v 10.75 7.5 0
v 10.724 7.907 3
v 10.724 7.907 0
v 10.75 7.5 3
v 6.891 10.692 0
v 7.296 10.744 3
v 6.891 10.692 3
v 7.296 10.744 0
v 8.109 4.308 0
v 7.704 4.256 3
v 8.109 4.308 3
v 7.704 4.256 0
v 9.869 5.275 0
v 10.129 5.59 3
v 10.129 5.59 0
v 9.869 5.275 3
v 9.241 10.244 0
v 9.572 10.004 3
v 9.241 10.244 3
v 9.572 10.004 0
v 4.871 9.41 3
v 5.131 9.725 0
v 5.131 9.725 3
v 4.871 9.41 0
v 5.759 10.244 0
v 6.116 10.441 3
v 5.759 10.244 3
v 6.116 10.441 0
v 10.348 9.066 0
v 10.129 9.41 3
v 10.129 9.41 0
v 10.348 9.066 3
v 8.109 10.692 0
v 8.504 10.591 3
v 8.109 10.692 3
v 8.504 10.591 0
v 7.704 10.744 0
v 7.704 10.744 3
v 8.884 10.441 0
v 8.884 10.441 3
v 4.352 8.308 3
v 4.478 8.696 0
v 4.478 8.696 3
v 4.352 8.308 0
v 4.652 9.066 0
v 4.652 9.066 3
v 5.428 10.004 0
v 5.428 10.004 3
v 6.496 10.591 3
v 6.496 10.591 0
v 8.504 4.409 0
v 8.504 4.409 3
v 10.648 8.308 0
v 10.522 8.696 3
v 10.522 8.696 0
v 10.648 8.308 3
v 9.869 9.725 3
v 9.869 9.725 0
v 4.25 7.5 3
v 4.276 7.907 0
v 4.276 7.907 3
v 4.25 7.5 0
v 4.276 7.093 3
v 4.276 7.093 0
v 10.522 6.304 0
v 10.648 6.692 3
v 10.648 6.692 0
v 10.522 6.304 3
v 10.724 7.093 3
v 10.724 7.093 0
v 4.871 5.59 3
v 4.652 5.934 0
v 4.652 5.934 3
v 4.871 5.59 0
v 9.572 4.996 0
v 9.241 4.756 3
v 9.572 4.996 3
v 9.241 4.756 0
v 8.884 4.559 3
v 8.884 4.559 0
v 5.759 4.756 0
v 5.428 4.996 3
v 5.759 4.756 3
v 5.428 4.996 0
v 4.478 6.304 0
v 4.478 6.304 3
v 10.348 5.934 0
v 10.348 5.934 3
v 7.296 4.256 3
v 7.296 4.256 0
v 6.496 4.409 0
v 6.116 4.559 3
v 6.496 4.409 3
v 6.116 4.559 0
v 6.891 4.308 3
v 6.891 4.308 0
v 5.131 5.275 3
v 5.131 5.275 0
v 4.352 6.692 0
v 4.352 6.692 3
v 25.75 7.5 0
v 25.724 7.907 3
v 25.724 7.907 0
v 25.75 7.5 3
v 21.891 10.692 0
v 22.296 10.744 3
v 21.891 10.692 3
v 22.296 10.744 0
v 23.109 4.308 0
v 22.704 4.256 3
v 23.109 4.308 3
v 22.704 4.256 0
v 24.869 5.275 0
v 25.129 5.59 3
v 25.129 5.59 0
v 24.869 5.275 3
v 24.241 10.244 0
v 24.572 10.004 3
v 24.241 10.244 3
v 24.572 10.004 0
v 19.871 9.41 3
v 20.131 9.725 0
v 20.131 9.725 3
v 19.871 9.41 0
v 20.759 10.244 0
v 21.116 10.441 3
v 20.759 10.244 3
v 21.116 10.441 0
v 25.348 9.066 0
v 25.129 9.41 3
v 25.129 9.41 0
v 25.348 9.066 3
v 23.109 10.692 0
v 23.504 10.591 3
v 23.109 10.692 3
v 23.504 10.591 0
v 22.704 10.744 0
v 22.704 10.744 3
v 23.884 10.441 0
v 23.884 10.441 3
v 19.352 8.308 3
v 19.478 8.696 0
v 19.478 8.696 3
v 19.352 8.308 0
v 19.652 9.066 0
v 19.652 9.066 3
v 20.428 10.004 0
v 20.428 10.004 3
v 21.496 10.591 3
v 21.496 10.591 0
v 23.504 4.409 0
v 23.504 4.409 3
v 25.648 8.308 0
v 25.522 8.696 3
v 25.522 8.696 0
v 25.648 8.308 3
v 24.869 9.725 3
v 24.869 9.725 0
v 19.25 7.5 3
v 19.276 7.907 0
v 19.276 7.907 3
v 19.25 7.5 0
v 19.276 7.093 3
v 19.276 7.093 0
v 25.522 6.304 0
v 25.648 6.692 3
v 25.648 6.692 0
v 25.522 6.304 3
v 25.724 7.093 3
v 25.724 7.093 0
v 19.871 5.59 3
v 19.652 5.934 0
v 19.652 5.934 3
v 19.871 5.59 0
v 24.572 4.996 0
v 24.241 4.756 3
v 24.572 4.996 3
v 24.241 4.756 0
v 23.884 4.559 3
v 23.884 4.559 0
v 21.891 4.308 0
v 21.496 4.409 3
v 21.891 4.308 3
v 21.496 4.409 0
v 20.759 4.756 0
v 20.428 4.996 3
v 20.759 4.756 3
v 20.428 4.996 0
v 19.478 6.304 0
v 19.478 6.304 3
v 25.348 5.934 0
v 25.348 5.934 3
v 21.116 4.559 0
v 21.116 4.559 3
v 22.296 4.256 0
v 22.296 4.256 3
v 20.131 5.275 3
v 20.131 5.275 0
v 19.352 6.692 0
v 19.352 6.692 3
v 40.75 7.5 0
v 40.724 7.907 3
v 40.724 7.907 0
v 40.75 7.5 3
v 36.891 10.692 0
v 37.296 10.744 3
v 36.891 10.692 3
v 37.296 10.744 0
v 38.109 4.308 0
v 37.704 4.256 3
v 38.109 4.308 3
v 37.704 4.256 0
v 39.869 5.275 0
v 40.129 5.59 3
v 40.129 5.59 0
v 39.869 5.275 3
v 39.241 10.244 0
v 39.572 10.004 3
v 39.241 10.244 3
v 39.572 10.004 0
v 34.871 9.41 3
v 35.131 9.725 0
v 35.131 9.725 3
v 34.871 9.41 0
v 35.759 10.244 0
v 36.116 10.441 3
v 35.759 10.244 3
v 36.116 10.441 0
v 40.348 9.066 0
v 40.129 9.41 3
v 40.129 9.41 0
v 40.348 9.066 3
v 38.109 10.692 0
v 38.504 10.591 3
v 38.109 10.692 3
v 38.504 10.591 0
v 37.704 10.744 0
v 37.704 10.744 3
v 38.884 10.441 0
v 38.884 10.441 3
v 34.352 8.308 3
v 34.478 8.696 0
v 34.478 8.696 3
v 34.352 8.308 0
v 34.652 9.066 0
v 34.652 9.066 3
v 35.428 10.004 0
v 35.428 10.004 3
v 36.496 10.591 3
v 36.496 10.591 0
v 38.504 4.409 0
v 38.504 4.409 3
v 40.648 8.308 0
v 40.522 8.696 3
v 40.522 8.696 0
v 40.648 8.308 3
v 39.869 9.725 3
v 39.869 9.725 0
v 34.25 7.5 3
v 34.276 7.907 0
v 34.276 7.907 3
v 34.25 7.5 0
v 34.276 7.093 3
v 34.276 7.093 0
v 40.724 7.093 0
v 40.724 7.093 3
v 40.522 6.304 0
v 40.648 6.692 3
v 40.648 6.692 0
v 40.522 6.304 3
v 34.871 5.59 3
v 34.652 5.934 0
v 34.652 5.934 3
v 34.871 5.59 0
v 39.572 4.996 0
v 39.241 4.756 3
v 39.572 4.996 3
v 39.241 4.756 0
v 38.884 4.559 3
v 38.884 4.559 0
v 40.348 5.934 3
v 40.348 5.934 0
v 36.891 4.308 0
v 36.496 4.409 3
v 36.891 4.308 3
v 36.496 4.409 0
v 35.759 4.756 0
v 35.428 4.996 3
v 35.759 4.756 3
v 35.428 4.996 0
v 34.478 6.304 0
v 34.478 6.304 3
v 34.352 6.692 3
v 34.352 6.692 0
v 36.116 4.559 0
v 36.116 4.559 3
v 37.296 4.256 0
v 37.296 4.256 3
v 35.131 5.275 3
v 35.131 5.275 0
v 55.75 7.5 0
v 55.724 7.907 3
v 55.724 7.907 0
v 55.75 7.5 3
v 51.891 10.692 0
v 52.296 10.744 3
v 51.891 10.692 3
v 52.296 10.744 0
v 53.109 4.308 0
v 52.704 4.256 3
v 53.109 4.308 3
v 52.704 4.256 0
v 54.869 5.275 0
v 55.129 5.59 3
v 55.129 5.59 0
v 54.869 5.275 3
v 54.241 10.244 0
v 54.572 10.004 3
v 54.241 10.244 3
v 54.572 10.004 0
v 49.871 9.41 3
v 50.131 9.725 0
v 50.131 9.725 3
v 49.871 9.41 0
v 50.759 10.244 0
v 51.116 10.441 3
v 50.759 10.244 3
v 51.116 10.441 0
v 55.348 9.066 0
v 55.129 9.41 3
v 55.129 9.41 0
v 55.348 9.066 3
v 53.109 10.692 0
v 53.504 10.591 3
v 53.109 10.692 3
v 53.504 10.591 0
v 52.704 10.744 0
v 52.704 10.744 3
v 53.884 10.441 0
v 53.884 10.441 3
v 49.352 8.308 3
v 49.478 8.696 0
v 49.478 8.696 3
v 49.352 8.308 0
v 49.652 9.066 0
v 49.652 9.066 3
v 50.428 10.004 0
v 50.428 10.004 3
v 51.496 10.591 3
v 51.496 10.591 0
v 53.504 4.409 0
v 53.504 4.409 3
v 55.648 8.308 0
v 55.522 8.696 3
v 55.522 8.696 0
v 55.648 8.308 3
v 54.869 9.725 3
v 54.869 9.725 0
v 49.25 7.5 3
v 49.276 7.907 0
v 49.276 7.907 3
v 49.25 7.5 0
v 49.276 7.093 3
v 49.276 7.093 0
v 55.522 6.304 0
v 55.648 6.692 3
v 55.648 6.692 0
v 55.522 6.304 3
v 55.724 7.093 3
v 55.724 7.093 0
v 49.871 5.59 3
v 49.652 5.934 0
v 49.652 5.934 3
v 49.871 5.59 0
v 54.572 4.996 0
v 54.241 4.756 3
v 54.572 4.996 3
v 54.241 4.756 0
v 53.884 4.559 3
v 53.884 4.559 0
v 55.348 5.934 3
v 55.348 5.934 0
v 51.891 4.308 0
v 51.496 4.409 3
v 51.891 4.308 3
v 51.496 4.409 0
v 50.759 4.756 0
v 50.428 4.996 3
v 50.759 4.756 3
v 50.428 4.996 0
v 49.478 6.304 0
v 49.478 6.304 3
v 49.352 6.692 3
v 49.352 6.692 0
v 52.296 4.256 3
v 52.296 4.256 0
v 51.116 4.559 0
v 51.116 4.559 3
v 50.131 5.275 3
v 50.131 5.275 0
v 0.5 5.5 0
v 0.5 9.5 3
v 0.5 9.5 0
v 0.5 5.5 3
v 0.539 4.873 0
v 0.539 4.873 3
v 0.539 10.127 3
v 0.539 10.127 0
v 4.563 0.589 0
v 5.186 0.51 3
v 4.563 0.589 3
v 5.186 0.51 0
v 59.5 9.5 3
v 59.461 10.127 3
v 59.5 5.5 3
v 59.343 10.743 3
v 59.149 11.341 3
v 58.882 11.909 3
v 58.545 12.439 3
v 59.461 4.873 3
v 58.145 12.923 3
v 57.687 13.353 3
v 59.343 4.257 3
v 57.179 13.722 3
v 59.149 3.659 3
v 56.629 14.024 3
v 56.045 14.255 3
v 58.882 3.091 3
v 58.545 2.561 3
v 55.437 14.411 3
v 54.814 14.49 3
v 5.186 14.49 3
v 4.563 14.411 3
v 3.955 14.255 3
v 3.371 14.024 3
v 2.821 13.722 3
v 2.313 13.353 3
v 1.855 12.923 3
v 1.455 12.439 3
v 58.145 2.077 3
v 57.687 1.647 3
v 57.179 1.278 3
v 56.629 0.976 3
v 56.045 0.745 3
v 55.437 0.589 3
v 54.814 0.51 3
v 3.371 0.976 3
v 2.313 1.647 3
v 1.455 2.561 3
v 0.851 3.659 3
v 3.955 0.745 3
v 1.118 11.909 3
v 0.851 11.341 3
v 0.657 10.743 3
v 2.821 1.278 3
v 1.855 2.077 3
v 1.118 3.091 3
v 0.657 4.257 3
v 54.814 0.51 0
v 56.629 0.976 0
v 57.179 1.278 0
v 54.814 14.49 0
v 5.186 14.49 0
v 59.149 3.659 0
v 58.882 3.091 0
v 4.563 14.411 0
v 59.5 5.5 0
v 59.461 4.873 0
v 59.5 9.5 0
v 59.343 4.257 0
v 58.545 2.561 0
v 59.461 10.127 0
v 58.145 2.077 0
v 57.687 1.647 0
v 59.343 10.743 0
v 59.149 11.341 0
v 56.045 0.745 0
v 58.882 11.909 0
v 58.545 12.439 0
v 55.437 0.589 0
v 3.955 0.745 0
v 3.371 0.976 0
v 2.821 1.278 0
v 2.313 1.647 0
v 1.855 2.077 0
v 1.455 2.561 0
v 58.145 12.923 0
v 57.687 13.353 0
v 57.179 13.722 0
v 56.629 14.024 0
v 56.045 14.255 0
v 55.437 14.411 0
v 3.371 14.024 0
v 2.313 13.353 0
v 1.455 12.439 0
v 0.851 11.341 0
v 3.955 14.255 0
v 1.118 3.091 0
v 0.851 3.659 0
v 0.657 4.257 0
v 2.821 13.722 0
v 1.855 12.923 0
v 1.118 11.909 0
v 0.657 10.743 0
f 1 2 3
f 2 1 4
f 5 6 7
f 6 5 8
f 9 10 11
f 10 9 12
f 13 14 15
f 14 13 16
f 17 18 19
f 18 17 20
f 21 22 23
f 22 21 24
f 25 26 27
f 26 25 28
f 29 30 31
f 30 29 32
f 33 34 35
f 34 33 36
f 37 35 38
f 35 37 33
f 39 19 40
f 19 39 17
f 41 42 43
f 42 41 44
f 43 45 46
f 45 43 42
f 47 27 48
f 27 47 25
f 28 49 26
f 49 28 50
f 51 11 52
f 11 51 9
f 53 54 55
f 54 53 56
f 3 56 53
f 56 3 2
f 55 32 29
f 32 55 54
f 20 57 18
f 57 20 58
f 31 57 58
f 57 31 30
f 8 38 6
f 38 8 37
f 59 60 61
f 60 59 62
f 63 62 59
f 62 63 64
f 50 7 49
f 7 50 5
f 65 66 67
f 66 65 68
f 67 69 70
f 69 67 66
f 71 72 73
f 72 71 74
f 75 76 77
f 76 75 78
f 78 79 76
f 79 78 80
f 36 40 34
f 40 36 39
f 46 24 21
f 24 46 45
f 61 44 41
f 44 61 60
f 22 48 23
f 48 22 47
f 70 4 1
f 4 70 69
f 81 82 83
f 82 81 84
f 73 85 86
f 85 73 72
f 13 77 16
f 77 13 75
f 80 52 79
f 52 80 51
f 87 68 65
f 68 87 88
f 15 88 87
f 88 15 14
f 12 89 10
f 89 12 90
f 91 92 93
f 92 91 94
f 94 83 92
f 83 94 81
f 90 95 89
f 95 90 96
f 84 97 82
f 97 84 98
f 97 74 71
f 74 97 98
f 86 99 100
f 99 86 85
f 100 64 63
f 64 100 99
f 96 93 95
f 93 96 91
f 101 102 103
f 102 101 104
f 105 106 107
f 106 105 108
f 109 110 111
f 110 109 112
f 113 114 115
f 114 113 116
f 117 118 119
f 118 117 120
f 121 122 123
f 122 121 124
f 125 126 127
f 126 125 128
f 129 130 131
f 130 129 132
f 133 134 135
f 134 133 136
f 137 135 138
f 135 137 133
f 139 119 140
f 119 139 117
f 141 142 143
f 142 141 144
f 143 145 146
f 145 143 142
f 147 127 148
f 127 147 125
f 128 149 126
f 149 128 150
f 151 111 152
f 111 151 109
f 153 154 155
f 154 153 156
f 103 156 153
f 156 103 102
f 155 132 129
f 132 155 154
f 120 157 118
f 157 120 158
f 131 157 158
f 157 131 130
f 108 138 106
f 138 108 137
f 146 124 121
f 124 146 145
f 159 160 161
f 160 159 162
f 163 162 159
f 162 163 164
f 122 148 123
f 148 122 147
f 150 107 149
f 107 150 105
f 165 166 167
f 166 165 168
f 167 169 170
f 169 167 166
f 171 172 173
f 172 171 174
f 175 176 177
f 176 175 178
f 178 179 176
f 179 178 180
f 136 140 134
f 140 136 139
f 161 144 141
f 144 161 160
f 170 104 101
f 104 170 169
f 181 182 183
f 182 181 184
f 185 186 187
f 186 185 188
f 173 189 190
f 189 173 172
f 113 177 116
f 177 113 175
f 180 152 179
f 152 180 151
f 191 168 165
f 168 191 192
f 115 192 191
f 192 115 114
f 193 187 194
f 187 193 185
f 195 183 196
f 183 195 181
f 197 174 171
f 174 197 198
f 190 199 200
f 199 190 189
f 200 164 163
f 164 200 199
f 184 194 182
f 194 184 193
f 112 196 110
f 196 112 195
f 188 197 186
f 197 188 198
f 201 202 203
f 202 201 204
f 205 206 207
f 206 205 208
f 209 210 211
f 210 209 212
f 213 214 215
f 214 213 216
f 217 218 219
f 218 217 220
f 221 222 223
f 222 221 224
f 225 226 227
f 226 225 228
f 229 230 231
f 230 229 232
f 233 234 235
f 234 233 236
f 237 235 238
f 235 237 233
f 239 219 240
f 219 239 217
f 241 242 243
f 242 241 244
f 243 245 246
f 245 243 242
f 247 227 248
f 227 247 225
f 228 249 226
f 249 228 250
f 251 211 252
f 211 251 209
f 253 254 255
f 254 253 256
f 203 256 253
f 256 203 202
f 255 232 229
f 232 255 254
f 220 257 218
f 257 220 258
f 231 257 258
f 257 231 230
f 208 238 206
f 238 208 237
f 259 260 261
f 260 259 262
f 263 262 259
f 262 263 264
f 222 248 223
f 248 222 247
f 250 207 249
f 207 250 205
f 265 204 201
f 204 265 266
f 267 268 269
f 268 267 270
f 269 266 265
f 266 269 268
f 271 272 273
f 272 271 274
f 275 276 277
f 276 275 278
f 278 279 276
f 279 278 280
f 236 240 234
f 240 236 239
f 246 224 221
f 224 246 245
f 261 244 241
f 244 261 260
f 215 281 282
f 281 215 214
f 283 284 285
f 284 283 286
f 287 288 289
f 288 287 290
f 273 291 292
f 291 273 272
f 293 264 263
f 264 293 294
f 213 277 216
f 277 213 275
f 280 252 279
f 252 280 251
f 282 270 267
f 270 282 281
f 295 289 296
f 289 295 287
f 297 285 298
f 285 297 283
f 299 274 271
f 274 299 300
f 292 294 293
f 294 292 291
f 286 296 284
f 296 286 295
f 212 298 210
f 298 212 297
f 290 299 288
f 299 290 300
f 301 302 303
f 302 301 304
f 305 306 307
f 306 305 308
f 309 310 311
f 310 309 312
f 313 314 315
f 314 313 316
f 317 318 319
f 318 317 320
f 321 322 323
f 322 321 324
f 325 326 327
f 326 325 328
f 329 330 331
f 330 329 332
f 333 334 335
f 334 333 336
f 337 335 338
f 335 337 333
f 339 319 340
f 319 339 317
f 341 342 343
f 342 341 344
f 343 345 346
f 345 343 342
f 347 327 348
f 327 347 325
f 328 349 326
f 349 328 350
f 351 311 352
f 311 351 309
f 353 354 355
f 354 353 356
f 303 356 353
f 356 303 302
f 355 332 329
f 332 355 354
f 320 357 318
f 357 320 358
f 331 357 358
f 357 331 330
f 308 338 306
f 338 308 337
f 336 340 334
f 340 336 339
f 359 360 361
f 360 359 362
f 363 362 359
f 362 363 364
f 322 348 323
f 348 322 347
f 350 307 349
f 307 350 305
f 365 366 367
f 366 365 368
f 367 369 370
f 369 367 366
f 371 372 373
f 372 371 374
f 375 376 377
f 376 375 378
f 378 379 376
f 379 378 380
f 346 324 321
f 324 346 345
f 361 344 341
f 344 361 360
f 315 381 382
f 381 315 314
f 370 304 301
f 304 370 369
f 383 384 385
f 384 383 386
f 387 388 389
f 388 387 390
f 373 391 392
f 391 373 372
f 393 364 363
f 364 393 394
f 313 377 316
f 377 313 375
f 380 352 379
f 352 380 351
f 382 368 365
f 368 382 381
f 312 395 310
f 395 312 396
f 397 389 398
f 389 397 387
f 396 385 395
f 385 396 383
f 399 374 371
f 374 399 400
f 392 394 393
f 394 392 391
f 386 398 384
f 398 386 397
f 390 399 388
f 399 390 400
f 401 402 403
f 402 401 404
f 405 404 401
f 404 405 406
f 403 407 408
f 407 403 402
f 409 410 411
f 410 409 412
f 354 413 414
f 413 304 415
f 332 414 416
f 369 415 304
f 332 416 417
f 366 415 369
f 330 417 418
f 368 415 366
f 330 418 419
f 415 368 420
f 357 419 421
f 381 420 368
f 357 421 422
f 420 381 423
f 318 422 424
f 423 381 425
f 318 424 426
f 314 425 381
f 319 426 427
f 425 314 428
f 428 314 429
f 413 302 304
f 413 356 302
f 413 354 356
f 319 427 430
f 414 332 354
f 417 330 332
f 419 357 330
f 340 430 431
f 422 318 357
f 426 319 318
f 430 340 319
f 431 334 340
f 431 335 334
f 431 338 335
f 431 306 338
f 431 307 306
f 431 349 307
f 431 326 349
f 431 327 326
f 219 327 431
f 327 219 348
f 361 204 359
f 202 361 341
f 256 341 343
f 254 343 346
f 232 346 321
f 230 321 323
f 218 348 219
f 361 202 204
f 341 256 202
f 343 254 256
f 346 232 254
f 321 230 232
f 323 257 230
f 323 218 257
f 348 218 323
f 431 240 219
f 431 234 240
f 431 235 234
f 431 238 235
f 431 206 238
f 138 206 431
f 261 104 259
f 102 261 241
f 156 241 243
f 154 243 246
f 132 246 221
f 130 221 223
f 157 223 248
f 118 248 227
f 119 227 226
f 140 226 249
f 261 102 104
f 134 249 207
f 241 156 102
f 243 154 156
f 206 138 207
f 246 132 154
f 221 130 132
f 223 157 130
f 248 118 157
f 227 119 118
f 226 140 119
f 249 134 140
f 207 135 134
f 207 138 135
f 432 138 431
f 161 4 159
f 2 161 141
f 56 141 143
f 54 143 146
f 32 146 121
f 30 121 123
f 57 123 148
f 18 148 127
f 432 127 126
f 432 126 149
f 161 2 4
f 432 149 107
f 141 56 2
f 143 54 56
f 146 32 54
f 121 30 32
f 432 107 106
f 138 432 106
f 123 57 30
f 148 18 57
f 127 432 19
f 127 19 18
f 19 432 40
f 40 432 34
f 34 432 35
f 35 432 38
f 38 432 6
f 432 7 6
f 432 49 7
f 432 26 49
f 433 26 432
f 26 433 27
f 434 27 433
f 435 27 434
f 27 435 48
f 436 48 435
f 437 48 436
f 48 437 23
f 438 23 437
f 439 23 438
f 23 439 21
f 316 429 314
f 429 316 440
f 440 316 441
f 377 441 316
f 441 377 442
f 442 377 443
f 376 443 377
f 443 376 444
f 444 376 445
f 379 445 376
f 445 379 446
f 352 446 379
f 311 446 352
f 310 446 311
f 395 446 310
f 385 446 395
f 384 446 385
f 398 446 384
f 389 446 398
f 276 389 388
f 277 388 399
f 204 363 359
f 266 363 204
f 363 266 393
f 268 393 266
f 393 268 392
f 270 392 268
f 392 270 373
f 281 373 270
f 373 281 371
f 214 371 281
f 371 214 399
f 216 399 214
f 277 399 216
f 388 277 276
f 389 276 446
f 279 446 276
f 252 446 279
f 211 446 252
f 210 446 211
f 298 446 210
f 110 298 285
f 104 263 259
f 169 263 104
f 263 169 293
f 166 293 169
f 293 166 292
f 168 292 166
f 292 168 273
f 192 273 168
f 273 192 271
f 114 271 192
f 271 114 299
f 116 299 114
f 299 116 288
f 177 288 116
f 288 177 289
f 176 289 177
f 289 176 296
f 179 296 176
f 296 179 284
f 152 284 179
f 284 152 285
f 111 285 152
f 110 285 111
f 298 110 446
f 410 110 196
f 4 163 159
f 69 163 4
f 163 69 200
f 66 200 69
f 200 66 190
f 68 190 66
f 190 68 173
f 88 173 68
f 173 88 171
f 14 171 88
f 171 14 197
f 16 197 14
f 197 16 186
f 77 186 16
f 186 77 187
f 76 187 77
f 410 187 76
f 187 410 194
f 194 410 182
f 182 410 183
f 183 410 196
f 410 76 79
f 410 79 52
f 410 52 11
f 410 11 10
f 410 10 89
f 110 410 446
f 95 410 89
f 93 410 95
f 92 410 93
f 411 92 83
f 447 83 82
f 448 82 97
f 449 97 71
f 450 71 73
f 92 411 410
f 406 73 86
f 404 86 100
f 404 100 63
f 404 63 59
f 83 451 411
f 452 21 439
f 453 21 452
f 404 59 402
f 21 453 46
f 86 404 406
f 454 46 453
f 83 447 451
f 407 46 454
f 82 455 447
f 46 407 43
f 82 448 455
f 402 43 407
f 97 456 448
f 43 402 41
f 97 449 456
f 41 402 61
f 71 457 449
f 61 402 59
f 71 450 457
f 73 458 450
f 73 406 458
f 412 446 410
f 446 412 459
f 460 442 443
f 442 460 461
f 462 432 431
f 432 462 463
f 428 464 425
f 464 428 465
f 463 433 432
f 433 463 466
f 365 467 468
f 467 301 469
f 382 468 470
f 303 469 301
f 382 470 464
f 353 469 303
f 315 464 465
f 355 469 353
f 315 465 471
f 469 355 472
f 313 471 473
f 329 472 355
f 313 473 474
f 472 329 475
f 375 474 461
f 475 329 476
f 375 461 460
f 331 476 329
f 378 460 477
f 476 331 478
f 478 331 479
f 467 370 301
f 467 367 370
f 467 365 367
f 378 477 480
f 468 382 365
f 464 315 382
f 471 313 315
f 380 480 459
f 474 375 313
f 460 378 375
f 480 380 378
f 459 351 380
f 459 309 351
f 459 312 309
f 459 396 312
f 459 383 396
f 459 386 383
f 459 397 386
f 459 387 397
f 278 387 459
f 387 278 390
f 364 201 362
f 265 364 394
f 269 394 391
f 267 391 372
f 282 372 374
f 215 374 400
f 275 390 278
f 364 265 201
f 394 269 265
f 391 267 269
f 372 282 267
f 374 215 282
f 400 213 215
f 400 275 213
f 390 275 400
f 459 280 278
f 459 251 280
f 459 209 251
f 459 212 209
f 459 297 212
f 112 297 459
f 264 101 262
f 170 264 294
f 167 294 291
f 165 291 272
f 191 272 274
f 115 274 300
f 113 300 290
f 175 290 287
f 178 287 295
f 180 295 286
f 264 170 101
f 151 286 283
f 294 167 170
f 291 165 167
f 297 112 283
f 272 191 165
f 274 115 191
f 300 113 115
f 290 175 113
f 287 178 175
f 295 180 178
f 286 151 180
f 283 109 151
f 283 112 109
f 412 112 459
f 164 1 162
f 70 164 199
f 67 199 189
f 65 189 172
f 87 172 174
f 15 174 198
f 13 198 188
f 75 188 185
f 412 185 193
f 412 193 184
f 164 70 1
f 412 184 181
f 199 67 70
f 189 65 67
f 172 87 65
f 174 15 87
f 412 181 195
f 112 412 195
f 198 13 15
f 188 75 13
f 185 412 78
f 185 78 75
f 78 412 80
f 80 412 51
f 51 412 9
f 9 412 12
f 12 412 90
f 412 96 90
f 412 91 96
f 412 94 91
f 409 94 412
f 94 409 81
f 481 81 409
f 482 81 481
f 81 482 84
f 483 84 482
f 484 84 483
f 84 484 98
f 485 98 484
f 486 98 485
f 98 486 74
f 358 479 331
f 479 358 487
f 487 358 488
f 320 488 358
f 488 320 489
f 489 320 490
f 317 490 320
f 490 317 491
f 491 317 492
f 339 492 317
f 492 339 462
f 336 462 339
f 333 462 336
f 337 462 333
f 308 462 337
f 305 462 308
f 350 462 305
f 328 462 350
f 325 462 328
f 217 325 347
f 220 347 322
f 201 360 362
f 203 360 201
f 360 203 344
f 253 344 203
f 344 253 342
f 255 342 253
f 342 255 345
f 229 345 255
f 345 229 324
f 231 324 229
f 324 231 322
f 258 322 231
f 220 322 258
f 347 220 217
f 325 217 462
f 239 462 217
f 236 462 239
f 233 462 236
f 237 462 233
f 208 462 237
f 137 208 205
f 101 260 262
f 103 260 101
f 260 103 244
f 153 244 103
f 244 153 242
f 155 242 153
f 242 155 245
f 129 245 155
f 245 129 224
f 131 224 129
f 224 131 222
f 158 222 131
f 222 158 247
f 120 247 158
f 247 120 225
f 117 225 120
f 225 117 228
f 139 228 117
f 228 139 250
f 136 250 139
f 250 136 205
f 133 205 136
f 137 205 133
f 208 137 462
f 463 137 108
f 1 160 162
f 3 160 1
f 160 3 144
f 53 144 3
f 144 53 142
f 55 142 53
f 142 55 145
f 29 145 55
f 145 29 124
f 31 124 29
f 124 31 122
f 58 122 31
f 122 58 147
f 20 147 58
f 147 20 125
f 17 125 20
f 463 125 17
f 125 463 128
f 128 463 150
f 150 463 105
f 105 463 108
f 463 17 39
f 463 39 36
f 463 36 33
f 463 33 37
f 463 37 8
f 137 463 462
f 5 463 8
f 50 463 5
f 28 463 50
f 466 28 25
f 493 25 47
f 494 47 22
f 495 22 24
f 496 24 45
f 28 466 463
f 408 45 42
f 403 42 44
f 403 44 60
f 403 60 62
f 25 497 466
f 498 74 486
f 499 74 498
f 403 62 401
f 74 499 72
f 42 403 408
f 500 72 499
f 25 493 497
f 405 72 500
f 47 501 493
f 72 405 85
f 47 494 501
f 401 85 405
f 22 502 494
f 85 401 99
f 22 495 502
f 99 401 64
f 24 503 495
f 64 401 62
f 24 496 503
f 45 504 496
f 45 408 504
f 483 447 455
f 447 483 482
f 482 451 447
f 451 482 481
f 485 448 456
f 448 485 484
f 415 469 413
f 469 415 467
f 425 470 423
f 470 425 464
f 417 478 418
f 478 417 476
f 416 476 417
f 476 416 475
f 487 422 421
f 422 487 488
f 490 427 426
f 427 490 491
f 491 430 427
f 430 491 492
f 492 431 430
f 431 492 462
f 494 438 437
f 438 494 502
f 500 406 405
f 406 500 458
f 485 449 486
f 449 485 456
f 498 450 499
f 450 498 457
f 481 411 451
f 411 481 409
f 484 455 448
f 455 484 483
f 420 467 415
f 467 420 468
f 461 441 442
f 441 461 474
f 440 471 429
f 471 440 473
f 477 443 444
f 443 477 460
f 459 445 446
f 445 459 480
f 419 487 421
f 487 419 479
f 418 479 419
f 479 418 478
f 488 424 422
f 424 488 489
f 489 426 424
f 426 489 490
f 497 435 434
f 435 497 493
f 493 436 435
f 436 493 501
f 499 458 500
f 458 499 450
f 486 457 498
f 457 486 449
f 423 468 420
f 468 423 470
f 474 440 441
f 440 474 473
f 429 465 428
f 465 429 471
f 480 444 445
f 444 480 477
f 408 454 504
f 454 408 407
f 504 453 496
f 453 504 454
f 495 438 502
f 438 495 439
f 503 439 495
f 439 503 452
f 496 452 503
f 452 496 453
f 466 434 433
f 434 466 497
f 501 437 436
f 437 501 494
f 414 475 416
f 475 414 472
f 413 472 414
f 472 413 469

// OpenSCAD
// Generated by SolidPython 1.1.3 on 2023-01-30 13:27:37
$fn = 50;


difference() {
	union() {
		translate(v = [30.0000000000, 7.5000000000, 0]) {
			rotate(a = [0, 0, 0]) {
				hull() {
					translate(v = [-24.5000000000, 2.0000000000, 0]) {
						rotate(a = [0, 0, 0]) {
							translate(v = [0, 0, 0]) {
								rotate(a = [0, 0, 0]) {
									cylinder(h = 3, r = 5);
								}
							}
						}
					}
					translate(v = [24.5000000000, 2.0000000000, 0]) {
						rotate(a = [0, 0, 0]) {
							translate(v = [0, 0, 0]) {
								rotate(a = [0, 0, 0]) {
									cylinder(h = 3, r = 5);
								}
							}
						}
					}
					translate(v = [-24.5000000000, -2.0000000000, 0]) {
						rotate(a = [0, 0, 0]) {
							translate(v = [0, 0, 0]) {
								rotate(a = [0, 0, 0]) {
									cylinder(h = 3, r = 5);
								}
							}
						}
					}
					translate(v = [24.5000000000, -2.0000000000, 0]) {
						rotate(a = [0, 0, 0]) {
							translate(v = [0, 0, 0]) {
								rotate(a = [0, 0, 0]) {
									cylinder(h = 3, r = 5);
								}
							}
						}
					}
				}
			}
		}
	}
	union() {
		translate(v = [7.5000000000, 7.5000000000, 0]) {
			rotate(a = [0, 0, 0]) {
				translate(v = [0, 0, -50]) {
					rotate(a = [0, 0, 0]) {
						cylinder(h = 100, r = 3.2500000000);
					}
				}
			}
		}
		translate(v = [22.5000000000, 7.5000000000, 0]) {
			rotate(a = [0, 0, 0]) {
				translate(v = [0, 0, -50]) {
					rotate(a = [0, 0, 0]) {
						cylinder(h = 100, r = 3.2500000000);
					}
				}
			}
		}
		translate(v = [37.5000000000, 7.5000000000, 0]) {
			rotate(a = [0, 0, 0]) {
				translate(v = [0, 0, -50]) {
					rotate(a = [0, 0, 0]) {
						cylinder(h = 100, r = 3.2500000000);
					}
				}
			}
		}
		translate(v = [52.5000000000, 7.5000000000, 0]) {
			rotate(a = [0, 0, 0]) {
				translate(v = [0, 0, -50]) {
					rotate(a = [0, 0, 0]) {
						cylinder(h = 100, r = 3.2500000000);
					}
				}
			}
		}
	}
}
/***********************************************
*********      SolidPython code:      **********
************************************************
 
from solid import *
import os
import subprocess

import oomB

import opsc_library_gen

mode = "laser"
#mode = "3d_print"

defined_objects = {}

radius_dict = {}
countersunk_dict = {}


def set_mode(m):
    global mode
    mode = m
    radius_dict['M6'] = 6.5/2
    radius_dict['M3'] = 3.3/2
    if mode == "laser":
        radius_dict['M6'] = 6/2
        radius_dict['M3'] = 3/2

    countersunk_dict['M3'] = {}
    countersunk_dict['M3']['little_rad'] = radius_dict['M3']
    countersunk_dict['M3']['big_rad'] = (5.5+0.6)/2
    if mode == "laser":
        countersunk_dict['M3']['big_rad'] = (4.75+0.6)/2
        countersunk_dict['M3']['little_rad'] = (4.75+0.6)/2

    countersunk_dict['M3']['height'] = 1.7


def opsc_make_object(filename, objects, save_type="none",resolution=50, layers = 1, tilediff = 200, mode="laser"):
    set_mode(mode)
    save_type = save_type.lower()
    os.makedirs(os.path.dirname(filename), exist_ok=True)
    final_object = opsc_get_object(objects)
    # Save the final object to the specified filename    
    scad_render_to_file(final_object, filename, file_header='$fn = %s;' % resolution, include_orig_code=True)
    if mode == "laser":
        filename_laser = filename.replace(".scad","-flat.scad")
        scad_render_to_file(getLaser(final_object, layers=layers, tilediff=tilediff), filename_laser, file_header='$fn = %s;' % resolution, include_orig_code=True)
        if save_type == "all":
            saveToAll(filename_laser)
        elif save_type == "dxf":
            saveToDxf(filename_laser)
    if save_type == "all":
        saveToAll(filename)
    elif save_type == "dxf":
        saveToDxf(filename)


def opsc_get_object(objects):
    # Create the solidpython objects
    positive_objects = [get_opsc_item(obj) for obj in objects if obj['type'] == 'positive']
    negative_objects = [get_opsc_item(obj) for obj in objects if obj['type'] == 'negative']
    # Union the positive objects
    positive_object = union()(*positive_objects)
    # Union the negative objects
    negative_object = union()(*negative_objects)
    # Create the final object by subtracting the negative objects from the positive objects
    return difference()(positive_object, negative_object)

def get_opsc_item(params):
    # A dictionary to map radius string values to numerical values
    #radius_dict = {'small': 5, 'medium': 10, 'large': 15}
    # An array of function names for basic shapes
    basic_shapes = ['cube', 'sphere', 'cylinder']
    
    # An array of function names for other shapes
    other_shapes = ['hole', 'slot', 'rounded_rectangle', 'countersunk']
    


    # Convert radius to r if present, and remove radius from the params dictionary
    if 'radius' in params:
        if isinstance(params['radius'], str):
            # Use the radius_dict to map the radius string value to a numerical value
            params['r'] = radius_dict[params['radius']]
        else:
            params['r'] = params['radius']
        del params['radius']
    

    # Check if the object type is a basic shape
    if params['shape'] in basic_shapes:
        # Remove shape and unexpected dictionary values
        allowed_keys = {'size', 'r', 'r1', 'r2', 'd', 'h', 'rw', 'rh', 'dw', 'dh'}
        shape_params = {k: v for k, v in params.items() if k in allowed_keys}

        # Call the corresponding function for the shape parameter, using ** notation to pass the shape_params dictionary as keyword arguments
        return get_opsc_transform(params,globals()[params['shape']](**shape_params))
    
    # If the object type is not a basic shape, check if it's a defined object or one of the other shapes
    elif params['shape'] in other_shapes:
        # Call the corresponding function for the shape parameter, passing the params dictionary as an argument
        p2 = copy.deepcopy(params)
        p2["pos"] = [0,0,0]
        return get_opsc_transform(params,globals()[params['shape']](p2))
    
    # If the object is not a basic shape or a defined object, try to import it from a .scad file
    else:
        obj = defined_objects[params['shape']]
        return get_opsc_transform(params,obj)

def get_opsc_transform(params, solid_obj):
    # Rotate the object based on the 'rot' field in the params dictionary, or the 'rotX', 'rotY', and 'rotZ' fields if 'rot' is not present
    rot = params.get('rot', [])
    if rot:
        rotX, rotY, rotZ = rot
    else:
        rotX = params.get('rotX', 0)
        rotY = params.get('rotY', 0)
        rotZ = params.get('rotZ', 0)
    solid_obj = rotate([rotX, rotY, rotZ])(solid_obj)

    # Translate the object based on the 'pos' field in the params dictionary, or the 'x', 'y', and 'z' fields if 'pos' is not present
    pos = params.get('pos', [])
    if pos:
        x, y, z = pos
    else:
        x = params.get('x', 0)
        y = params.get('y', 0)
        z = params.get('z', 0)
    solid_obj = translate([x, y, z])(solid_obj)
    return solid_obj


import random

def opsc_easy_array(type, shape, repeats, pos_start, shift_arr, **kwargs):
    for i in range(0,3):
        repeats.append(1)
        pos_start.append(0)
        shift_arr.append(0)
    return_objects = []

    for x in range(0,repeats[0]):
        for y in range(0,repeats[1]):
            for z in range(0,repeats[2]):
                return_objects.append(opsc_easy(type, shape, pos=[pos_start[0]+x*shift_arr[0],pos_start[1]+y*shift_arr[1],pos_start[2]+z*shift_arr[2]], **kwargs))
    return return_objects                



def opsc_easy(type, shape, **kwargs):
    obj = {
        'type': type,
        'shape': shape
    }
    for param in ['size', 'r', 'r1', 'r2', 'd', 'h', 'rw', 'rh', 'dw', 'dh', 'pos', 'x', 'y', 'z', 'rot', 'rotX', 'rotY', 'rotZ', "w"]:
        if param in kwargs:
            obj[param] = kwargs[param]
    return obj

def hole(params):
    p2 = copy.deepcopy(params)  
    # Check if the radius is a string and replace it with the corresponding value from the dictionary
    if isinstance(p2['r'], str):
        p2['r'] = radius_dict[p2['r']]
    
    # Set the height to 100 if not specified
    if 'h' not in p2:
        p2['h'] = 100
        p2["pos"] = [0,0,-50]
    p2["center"] = True
    # Create the cylinder object
    p2["shape"] = "cylinder"
    p2["type"] = "positive"

    return get_opsc_item(p2)

import copy

def countersunk(params):
    p2 = copy.deepcopy(params)
    counter_rad = p2['r']
    p2['r'] = radius_dict[p2['r']]
    hp = copy.deepcopy(p2)
    hp["type"] = "positive"
    hp["shape"] = "hole"
    del hp["rot"]
    hol = get_opsc_item(hp)
    
    cp = copy.deepcopy(p2)
    cp["h"] = countersunk_dict[counter_rad]["height"]
    cp["r2"] = countersunk_dict[counter_rad]["little_rad"]
    cp["r1"] = countersunk_dict[counter_rad]["big_rad"]
    del cp["r"]
    del cp["rot"]
    cp["type"] = "positive"
    cp["shape"] = "cylinder"
    cp["pos"] = [0,0,0]

    top = get_opsc_item(cp)
    return union()(hol,top)



def slot(params):  
    p2 = copy.deepcopy(params) 
    if isinstance(p2['r'], str):
        p2['r'] = radius_dict[p2['r']]
    p2["type"] = "positive"
    p2["shape"] = "hole"
    del p2["rot"]
    p2["pos"] = [0,0,0]
    left = copy.deepcopy(p2)
    right = copy.deepcopy(p2)
    left["pos"][0] = p2["w"] / 2 - p2["r"] 
    
    right["pos"][0] = -p2["w"] / 2 + p2["r"] 
    pass
    leftObj = get_opsc_item(left)
    rightObj = get_opsc_item(right)
    return hull()(leftObj, rightObj)

def rounded_rectangle(params):   
    p2 = copy.deepcopy(params) 
    p2["h"] = p2["size"][2]
    p2["pos"] = p2.get("pos", [0, 0, 0]) 
    p2["type"] = "positive"
    p2["shape"] = "hole"
    p2["pos"] = [0,0,0]
    
    if 'rot' in p2:
        del p2["rot"]   
    if 'r' not in p2:
        p2["r"] = 5 
    tl = copy.deepcopy(p2)
    tr = copy.deepcopy(p2)
    bl = copy.deepcopy(p2)
    br = copy.deepcopy(p2)
    tl["pos"][0] = -(p2["size"][0] - p2["r"]*2)/2
    tl["pos"][1] = (p2["size"][1] - p2["r"]*2)/2
    tr["pos"][0] = (p2["size"][0] - p2["r"]*2)/2
    tr["pos"][1] = (p2["size"][1] - p2["r"]*2)/2
    bl["pos"][0] = -(p2["size"][0] - p2["r"]*2)/2
    bl["pos"][1] = -(p2["size"][1] - p2["r"]*2)/2
    br["pos"][0] = (p2["size"][0] - p2["r"]*2)/2
    br["pos"][1] = -(p2["size"][1] - p2["r"]*2)/2
    del tl["size"]
    del tr["size"]
    del bl["size"]
    del br["size"]
    tlo = get_opsc_item(tl)
    tro = get_opsc_item(tr)
    blo = get_opsc_item(bl)
    bro = get_opsc_item(br)    
    return hull()(tlo, tro, blo, bro)



def import_scad_object(filename):
    # Import the .scad file and convert it to a solidpython object
    #filename = "parts"
    obj = import_scad(filename)
    return obj.main()
    


import os
import solid as solidpython

# A dictionary to store the defined objects


def load_scad_objects():
    opsc_library_gen.gen_library(defined_objects)

import random

def test(num_objects):
    objects = []
    for i in range(num_objects):
        # Choose a random shape
        #shape = random.choice(['cube', 'sphere', 'cylinder', 'hole', 'slot', "rounded_rectangle"])
        shape = random.choice(["rounded_rectangle"])

        # Choose a random type
        type = random.choice(['positive', 'negative'])
        
        # Create an empty object dictionary
        obj = {'shape': shape, 'type': type}
        
        # Set shape-specific parameters
        if obj['shape'] in ['cube']:
            obj['size'] =  [random.uniform(5, 15), random.uniform(5, 15), random.uniform(5, 15)]
        if obj['shape'] in ['rounded_rectangle']:
            obj['size'] =  [random.uniform(5, 15), random.uniform(5, 15), random.uniform(5, 15)]
            obj['r'] = random.uniform(0.5, 5)
        elif obj['shape'] == 'sphere':
            obj['r'] = random.uniform(5, 15)
        elif obj['shape'] in ['cylinder', 'hole']:
            obj['r'] = random.uniform(0.5, 5)
            obj['h'] = random.uniform(5, 15)
        elif obj['shape'] == 'slot':
            obj['r'] = random.uniform(0.5, 5)
            obj['h'] = random.uniform(5, 15)
            obj['w'] = random.uniform(5, 15)
        
        # Set a random position and rotation
        obj['pos'] = [random.uniform(-20, 20), random.uniform(-20, 20), random.uniform(-20, 20)]
        obj['rot'] = [random.uniform(-180, 180), random.uniform(-180, 180), random.uniform(-180, 180)]
        
        # Add the object to the list
        objects.append(obj)
    return objects

####### old file saving
def saveToAll(fileIn):
    saveToDxf(fileIn)
    saveToPng(fileIn)
    saveToStl(fileIn)
    saveToSvg(fileIn)

def saveToDxf(fileIn, fileOut="", copy_to_laser=True):
    if fileOut == "":
        fileOut = fileIn.replace(".scad",".dxf")
    saveToFile(fileIn, fileOut)


    
def saveToPng(fileIn, fileOut="",extra="--render"):
    if fileOut == "":
        fileOut = fileIn.replace(".scad",".png")
    saveToFile(fileIn, fileOut)

def saveToStl(fileIn, fileOut=""):
    if fileOut == "":
        fileOut = fileIn.replace(".scad",".stl")
    saveToFile(fileIn, fileOut)
    
def saveToSvg(fileIn, fileOut=""):
    if fileOut == "":
        fileOut = fileIn.replace(".scad",".svg")
    saveToFile(fileIn, fileOut)

def saveToFile(fileIn, fileOut,extra=""):
    #extra = extra + " --colorscheme Tomorrow"

    launchStr = 'openscad -o "' + fileOut + '"' + extra + ' "' + fileIn + '"'
    if ".png" in fileOut:
        launchStr = launchStr + " --render"
    print("            saveToFile launch string: " + launchStr)
    subprocess.run(launchStr)
    x=0

def getLaser(final_object,start=1.5,layers=1,thickness=3,tilediff=200):
        rv= []

        for x in range(layers):
            rv.append(translate([0,x*tilediff,0])(
                    projection()(
                        intersection()(translate([-500,-500,start+x*thickness])(cube(size=[1000,1000,0.1])),
                            final_object
                        )
                    )
            )
            )
            
        return union()(rv)

set_mode("laser")
load_scad_objects() 
 
************************************************/
